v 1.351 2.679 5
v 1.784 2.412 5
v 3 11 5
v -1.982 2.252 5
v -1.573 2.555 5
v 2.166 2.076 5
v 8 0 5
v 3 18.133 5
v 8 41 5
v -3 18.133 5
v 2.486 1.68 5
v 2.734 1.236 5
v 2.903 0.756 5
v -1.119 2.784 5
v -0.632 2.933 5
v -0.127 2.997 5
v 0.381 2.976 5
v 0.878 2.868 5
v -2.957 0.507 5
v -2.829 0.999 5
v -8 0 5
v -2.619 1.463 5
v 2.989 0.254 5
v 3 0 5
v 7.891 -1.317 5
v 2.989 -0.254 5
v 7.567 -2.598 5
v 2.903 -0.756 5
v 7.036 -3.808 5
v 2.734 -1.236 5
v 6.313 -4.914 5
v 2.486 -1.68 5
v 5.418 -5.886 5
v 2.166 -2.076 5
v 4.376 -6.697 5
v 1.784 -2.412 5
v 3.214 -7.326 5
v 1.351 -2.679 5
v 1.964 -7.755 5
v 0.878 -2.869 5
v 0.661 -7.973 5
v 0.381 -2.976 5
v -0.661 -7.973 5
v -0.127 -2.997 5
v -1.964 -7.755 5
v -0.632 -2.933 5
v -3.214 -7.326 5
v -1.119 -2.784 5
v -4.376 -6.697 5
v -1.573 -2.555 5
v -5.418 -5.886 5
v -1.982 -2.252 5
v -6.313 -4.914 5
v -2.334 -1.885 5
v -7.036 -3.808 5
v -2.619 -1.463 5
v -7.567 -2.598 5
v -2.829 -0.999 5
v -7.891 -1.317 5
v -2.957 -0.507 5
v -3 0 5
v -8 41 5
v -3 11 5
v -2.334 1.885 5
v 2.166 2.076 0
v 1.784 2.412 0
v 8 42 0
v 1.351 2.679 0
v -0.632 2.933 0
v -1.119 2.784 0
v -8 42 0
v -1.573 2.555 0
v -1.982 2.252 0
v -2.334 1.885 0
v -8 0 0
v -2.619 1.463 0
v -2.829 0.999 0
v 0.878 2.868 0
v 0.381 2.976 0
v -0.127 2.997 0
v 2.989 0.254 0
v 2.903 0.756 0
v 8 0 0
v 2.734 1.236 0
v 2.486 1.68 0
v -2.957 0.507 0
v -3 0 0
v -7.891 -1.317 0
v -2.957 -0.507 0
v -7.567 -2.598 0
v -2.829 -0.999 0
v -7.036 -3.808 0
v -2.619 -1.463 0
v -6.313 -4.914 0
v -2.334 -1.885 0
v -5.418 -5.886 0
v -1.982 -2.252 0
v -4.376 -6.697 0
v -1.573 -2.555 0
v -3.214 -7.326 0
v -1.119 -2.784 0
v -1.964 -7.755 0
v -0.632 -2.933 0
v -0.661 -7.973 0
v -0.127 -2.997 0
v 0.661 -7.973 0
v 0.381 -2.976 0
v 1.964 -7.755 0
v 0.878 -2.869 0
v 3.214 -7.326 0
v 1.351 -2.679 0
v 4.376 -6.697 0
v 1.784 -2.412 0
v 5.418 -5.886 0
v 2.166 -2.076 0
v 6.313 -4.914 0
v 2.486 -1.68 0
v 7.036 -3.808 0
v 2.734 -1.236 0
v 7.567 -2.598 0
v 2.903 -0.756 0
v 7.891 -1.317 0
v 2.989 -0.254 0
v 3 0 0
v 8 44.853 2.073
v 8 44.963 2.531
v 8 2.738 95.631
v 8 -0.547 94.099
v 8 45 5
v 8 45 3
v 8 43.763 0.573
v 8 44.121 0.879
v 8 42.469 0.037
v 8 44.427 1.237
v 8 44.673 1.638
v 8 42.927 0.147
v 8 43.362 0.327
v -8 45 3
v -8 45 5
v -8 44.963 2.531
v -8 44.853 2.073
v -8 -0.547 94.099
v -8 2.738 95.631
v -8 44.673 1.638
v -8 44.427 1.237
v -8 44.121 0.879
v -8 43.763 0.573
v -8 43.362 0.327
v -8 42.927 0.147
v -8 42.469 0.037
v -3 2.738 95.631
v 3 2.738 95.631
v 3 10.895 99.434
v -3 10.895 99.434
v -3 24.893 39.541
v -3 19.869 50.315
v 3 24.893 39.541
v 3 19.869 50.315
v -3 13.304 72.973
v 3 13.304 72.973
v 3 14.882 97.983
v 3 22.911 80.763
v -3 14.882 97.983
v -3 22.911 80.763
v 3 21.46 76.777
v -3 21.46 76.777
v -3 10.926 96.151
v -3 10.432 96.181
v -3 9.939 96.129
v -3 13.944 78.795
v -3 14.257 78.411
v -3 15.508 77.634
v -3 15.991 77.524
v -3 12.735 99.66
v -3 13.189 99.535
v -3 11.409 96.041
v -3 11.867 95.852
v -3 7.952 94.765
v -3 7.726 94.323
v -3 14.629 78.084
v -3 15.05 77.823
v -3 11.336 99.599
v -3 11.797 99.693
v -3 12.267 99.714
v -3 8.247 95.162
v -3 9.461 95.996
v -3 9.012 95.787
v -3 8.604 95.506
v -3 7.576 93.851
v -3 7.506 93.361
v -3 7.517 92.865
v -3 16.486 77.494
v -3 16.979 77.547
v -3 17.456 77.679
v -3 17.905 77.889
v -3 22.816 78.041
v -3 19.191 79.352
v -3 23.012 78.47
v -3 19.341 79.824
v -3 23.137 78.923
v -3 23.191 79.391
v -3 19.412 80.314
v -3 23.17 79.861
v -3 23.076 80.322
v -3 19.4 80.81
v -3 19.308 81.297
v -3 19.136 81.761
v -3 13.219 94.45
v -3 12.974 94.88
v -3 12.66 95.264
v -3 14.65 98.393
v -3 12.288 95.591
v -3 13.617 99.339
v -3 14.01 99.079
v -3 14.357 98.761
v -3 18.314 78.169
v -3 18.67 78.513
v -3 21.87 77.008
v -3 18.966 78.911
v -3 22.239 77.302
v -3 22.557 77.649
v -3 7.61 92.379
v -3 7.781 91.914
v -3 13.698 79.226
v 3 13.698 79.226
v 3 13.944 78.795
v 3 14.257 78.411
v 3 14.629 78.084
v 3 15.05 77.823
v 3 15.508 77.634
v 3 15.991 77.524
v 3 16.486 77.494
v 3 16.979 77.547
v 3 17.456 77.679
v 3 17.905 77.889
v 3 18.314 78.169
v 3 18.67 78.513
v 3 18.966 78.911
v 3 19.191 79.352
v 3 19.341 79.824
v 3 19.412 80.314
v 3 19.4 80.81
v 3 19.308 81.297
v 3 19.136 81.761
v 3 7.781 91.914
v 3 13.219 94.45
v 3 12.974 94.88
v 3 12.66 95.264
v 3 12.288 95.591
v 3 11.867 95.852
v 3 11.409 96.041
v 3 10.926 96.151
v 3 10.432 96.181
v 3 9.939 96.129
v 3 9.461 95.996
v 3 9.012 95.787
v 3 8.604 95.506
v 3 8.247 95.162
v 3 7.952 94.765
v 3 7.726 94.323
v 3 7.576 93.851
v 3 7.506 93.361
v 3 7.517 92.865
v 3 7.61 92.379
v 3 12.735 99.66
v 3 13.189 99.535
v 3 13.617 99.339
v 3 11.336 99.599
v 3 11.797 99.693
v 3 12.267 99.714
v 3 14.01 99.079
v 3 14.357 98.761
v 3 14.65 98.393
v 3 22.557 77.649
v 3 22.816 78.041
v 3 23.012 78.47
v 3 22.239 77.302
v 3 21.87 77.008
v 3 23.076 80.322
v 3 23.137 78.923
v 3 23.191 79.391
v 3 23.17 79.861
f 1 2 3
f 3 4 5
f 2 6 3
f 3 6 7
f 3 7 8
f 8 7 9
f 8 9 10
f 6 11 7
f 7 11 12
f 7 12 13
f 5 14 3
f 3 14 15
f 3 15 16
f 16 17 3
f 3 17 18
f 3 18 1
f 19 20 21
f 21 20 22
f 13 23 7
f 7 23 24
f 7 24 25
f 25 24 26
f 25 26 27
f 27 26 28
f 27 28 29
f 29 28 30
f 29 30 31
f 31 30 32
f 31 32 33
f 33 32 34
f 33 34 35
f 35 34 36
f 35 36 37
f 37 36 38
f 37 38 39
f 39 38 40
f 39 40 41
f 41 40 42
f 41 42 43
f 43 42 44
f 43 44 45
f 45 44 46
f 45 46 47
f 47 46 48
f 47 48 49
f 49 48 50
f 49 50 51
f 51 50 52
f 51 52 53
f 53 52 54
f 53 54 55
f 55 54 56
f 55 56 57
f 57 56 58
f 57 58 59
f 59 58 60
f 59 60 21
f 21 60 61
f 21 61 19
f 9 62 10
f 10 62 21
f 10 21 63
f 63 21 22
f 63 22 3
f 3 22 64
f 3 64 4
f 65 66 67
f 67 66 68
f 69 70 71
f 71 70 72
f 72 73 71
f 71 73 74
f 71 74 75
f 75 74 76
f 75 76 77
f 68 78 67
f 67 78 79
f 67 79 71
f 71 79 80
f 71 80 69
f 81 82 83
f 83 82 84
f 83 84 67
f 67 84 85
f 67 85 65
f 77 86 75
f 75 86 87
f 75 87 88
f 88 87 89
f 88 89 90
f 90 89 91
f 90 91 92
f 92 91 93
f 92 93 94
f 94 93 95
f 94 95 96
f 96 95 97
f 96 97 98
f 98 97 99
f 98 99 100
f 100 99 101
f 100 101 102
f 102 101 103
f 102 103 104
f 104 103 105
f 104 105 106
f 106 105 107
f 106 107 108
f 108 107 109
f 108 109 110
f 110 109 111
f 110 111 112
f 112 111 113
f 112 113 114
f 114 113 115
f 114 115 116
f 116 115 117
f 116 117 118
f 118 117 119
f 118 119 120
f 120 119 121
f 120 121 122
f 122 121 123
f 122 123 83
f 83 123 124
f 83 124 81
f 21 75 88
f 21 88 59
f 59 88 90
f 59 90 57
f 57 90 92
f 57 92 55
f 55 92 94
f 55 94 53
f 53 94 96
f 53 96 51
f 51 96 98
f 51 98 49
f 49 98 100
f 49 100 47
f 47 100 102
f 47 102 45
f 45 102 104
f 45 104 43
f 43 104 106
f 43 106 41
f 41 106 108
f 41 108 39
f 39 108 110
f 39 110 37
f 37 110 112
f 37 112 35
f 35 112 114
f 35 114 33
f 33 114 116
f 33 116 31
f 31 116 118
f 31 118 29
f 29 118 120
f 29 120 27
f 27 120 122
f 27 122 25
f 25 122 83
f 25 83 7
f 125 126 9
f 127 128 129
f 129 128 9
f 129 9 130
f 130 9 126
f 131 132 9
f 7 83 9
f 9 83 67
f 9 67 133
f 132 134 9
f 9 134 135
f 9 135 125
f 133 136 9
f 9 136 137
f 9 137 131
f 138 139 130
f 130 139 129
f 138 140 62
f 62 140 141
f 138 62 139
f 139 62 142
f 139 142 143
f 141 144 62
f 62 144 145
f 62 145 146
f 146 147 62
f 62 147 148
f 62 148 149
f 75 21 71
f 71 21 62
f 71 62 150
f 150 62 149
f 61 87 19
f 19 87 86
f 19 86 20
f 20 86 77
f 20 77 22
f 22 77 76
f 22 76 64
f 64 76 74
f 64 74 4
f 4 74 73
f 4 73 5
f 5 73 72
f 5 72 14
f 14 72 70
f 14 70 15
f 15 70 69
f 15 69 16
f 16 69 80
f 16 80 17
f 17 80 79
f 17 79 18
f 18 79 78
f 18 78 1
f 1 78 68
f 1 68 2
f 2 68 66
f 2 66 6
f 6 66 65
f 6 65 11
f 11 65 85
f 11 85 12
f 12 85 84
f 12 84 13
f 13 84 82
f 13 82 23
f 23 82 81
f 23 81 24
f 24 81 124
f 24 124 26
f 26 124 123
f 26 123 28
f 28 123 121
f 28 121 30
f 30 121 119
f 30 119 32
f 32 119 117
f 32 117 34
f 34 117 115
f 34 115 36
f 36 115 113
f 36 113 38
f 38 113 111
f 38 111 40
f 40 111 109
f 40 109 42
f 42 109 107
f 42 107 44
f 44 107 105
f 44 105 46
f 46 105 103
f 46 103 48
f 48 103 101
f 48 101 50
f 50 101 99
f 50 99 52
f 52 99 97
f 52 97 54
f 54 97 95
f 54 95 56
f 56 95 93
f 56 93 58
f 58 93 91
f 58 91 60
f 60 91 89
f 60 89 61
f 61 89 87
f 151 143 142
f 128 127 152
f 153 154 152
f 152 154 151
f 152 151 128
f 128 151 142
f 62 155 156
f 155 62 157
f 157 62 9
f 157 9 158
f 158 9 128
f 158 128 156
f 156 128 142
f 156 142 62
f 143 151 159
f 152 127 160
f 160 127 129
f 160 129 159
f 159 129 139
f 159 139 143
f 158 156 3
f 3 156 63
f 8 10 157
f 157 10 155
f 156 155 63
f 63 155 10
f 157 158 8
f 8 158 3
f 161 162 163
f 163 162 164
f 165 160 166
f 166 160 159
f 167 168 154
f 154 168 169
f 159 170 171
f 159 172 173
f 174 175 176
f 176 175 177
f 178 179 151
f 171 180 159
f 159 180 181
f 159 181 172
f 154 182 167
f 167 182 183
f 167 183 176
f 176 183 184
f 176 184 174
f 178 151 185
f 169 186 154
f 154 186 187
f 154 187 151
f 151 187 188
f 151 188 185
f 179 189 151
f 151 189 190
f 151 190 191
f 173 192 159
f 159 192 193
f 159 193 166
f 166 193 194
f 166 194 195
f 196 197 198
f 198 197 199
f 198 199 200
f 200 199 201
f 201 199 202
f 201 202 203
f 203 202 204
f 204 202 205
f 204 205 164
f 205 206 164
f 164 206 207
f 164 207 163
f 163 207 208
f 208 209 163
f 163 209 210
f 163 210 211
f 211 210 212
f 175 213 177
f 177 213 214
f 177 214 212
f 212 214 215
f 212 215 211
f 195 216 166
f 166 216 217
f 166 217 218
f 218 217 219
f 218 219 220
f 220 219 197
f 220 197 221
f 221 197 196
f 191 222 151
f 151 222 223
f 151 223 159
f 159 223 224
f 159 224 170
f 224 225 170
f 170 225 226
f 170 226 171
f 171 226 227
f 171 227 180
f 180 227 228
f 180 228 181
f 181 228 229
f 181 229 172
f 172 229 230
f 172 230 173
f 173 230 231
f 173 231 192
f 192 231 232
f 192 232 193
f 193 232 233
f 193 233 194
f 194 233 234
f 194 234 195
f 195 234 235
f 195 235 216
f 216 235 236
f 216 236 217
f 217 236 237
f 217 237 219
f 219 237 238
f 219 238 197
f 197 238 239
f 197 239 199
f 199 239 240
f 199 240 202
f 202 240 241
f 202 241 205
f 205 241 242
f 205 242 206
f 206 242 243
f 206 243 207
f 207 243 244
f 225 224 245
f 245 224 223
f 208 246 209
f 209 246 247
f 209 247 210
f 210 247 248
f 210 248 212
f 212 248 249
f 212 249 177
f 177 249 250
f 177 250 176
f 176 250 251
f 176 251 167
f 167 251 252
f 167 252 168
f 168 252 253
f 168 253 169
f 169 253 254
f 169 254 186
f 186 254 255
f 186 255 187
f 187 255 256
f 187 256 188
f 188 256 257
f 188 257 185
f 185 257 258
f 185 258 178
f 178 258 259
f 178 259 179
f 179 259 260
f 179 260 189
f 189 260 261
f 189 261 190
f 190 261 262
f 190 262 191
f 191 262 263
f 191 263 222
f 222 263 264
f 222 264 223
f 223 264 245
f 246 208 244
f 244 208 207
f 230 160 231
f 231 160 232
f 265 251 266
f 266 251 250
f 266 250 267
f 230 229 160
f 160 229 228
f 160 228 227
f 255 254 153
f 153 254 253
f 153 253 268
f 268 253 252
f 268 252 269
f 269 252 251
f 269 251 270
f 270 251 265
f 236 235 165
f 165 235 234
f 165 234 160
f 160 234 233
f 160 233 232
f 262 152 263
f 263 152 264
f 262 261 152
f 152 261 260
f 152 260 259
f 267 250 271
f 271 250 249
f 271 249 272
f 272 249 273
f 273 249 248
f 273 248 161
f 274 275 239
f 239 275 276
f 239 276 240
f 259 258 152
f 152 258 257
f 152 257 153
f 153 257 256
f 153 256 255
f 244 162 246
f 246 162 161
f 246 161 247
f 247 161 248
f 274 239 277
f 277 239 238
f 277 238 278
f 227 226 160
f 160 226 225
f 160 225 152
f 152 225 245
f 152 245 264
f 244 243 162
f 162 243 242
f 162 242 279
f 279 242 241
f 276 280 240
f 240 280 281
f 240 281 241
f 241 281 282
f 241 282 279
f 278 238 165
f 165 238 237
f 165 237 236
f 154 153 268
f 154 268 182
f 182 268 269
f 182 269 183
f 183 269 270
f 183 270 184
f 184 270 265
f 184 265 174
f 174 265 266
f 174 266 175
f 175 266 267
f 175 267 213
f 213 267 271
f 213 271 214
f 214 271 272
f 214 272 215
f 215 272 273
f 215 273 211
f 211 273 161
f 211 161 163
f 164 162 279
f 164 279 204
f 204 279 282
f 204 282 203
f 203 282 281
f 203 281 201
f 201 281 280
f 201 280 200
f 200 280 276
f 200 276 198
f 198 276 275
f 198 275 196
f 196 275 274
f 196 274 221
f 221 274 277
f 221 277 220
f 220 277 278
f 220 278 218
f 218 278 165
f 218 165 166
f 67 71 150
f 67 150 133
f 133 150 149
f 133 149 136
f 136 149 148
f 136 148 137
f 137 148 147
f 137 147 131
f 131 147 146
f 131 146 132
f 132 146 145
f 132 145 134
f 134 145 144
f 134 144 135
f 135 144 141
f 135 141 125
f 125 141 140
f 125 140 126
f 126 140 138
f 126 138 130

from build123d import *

# Parameters (mm, degrees)
CROQUIS1_R                   = 3
SALIENTE_EXTRUIR1_DEPTH      = 5
SALIENTE_EXTRUIR2_DEPTH      = 16
SALIENTE_EXTRUIR3_DEPTH      = 3
SALIENTE_EXTRUIR3_DEPTH_BACK = 3
SALIENTE_EXTRUIR4_DEPTH      = 3
SALIENTE_EXTRUIR4_DEPTH_BACK = 3
REDONDEO1_R                  = 3


with BuildPart() as part:
    # Croquis1 → Saliente-Extruir1 (new body)
    with BuildSketch(Plane.XY):
        with BuildLine():
            Line((-8, 0), (-8, 45))
            Line((-8, 45), (8, 45))
            Line((8, 45), (8, 0))
            ThreePointArc((8, 0), (0, -8), (-8, 0))
        make_face()
        Circle(CROQUIS1_R, mode=Mode.SUBTRACT)
    extrude(amount=SALIENTE_EXTRUIR1_DEPTH)

    # Croquis2 → Saliente-Extruir2 (add)
    with BuildSketch(Plane.ZY.offset(8)):
        Polygon((5, 45), (95.630778704, 2.738173826), (94.098689817, -0.547401393), (5, 41), align=None)
    extrude(amount=-SALIENTE_EXTRUIR2_DEPTH)

    # Croquis3 → Saliente-Extruir3 (add, two sides)
    with BuildSketch(Plane(origin=(0, 0, 0), x_dir=(0, 0, -1), z_dir=(1, 0, 0))) as saliente_extruir3_sk:
        Polygon((-5, 11), (-50.315389352, 19.869086913), (-39.541185822, 24.893180529), (-5, 18.132810961), align=None)
    extrude(amount=SALIENTE_EXTRUIR3_DEPTH)
    extrude(saliente_extruir3_sk.sketch, amount=-SALIENTE_EXTRUIR3_DEPTH_BACK)

    # Croquis4 → Saliente-Extruir4 (add, two sides)
    with BuildSketch(Plane(origin=(0, 0, 0), x_dir=(0, 0, -1), z_dir=(1, 0, 0))) as saliente_extruir4_sk:
        Polygon((-95.630778704, 2.738173826), (-100.702197845, 13.61386727), (-78.044503169, 24.179323814), (-72.973084028, 13.303630369), align=None)
        with BuildLine():
            Line((-79.225631642, 13.698153291), (-91.91394066, 7.781497627))
            ThreePointArc((-91.91394066, 7.781497627), (-95.900718807, 9.232566203), (-94.449650231, 13.219344349))
            Line((-94.449650231, 13.219344349), (-81.761341212, 19.136000013))
            ThreePointArc((-81.761341212, 19.136000013), (-77.774563066, 17.684931437), (-79.225631642, 13.698153291))
        make_face(mode=Mode.SUBTRACT)
    extrude(amount=SALIENTE_EXTRUIR4_DEPTH)
    extrude(saliente_extruir4_sk.sketch, amount=-SALIENTE_EXTRUIR4_DEPTH_BACK)

    # Redondeo1
    redondeo1_edges = [part.edges().sort_by_distance(p)[0] for p in [
        (0, 13.61386727, 100.702197845),
        (0, 24.179323814, 78.044503169),
        (0, 45, 0),
    ]]
    fillet(redondeo1_edges, radius=REDONDEO1_R)


solid = part.part
